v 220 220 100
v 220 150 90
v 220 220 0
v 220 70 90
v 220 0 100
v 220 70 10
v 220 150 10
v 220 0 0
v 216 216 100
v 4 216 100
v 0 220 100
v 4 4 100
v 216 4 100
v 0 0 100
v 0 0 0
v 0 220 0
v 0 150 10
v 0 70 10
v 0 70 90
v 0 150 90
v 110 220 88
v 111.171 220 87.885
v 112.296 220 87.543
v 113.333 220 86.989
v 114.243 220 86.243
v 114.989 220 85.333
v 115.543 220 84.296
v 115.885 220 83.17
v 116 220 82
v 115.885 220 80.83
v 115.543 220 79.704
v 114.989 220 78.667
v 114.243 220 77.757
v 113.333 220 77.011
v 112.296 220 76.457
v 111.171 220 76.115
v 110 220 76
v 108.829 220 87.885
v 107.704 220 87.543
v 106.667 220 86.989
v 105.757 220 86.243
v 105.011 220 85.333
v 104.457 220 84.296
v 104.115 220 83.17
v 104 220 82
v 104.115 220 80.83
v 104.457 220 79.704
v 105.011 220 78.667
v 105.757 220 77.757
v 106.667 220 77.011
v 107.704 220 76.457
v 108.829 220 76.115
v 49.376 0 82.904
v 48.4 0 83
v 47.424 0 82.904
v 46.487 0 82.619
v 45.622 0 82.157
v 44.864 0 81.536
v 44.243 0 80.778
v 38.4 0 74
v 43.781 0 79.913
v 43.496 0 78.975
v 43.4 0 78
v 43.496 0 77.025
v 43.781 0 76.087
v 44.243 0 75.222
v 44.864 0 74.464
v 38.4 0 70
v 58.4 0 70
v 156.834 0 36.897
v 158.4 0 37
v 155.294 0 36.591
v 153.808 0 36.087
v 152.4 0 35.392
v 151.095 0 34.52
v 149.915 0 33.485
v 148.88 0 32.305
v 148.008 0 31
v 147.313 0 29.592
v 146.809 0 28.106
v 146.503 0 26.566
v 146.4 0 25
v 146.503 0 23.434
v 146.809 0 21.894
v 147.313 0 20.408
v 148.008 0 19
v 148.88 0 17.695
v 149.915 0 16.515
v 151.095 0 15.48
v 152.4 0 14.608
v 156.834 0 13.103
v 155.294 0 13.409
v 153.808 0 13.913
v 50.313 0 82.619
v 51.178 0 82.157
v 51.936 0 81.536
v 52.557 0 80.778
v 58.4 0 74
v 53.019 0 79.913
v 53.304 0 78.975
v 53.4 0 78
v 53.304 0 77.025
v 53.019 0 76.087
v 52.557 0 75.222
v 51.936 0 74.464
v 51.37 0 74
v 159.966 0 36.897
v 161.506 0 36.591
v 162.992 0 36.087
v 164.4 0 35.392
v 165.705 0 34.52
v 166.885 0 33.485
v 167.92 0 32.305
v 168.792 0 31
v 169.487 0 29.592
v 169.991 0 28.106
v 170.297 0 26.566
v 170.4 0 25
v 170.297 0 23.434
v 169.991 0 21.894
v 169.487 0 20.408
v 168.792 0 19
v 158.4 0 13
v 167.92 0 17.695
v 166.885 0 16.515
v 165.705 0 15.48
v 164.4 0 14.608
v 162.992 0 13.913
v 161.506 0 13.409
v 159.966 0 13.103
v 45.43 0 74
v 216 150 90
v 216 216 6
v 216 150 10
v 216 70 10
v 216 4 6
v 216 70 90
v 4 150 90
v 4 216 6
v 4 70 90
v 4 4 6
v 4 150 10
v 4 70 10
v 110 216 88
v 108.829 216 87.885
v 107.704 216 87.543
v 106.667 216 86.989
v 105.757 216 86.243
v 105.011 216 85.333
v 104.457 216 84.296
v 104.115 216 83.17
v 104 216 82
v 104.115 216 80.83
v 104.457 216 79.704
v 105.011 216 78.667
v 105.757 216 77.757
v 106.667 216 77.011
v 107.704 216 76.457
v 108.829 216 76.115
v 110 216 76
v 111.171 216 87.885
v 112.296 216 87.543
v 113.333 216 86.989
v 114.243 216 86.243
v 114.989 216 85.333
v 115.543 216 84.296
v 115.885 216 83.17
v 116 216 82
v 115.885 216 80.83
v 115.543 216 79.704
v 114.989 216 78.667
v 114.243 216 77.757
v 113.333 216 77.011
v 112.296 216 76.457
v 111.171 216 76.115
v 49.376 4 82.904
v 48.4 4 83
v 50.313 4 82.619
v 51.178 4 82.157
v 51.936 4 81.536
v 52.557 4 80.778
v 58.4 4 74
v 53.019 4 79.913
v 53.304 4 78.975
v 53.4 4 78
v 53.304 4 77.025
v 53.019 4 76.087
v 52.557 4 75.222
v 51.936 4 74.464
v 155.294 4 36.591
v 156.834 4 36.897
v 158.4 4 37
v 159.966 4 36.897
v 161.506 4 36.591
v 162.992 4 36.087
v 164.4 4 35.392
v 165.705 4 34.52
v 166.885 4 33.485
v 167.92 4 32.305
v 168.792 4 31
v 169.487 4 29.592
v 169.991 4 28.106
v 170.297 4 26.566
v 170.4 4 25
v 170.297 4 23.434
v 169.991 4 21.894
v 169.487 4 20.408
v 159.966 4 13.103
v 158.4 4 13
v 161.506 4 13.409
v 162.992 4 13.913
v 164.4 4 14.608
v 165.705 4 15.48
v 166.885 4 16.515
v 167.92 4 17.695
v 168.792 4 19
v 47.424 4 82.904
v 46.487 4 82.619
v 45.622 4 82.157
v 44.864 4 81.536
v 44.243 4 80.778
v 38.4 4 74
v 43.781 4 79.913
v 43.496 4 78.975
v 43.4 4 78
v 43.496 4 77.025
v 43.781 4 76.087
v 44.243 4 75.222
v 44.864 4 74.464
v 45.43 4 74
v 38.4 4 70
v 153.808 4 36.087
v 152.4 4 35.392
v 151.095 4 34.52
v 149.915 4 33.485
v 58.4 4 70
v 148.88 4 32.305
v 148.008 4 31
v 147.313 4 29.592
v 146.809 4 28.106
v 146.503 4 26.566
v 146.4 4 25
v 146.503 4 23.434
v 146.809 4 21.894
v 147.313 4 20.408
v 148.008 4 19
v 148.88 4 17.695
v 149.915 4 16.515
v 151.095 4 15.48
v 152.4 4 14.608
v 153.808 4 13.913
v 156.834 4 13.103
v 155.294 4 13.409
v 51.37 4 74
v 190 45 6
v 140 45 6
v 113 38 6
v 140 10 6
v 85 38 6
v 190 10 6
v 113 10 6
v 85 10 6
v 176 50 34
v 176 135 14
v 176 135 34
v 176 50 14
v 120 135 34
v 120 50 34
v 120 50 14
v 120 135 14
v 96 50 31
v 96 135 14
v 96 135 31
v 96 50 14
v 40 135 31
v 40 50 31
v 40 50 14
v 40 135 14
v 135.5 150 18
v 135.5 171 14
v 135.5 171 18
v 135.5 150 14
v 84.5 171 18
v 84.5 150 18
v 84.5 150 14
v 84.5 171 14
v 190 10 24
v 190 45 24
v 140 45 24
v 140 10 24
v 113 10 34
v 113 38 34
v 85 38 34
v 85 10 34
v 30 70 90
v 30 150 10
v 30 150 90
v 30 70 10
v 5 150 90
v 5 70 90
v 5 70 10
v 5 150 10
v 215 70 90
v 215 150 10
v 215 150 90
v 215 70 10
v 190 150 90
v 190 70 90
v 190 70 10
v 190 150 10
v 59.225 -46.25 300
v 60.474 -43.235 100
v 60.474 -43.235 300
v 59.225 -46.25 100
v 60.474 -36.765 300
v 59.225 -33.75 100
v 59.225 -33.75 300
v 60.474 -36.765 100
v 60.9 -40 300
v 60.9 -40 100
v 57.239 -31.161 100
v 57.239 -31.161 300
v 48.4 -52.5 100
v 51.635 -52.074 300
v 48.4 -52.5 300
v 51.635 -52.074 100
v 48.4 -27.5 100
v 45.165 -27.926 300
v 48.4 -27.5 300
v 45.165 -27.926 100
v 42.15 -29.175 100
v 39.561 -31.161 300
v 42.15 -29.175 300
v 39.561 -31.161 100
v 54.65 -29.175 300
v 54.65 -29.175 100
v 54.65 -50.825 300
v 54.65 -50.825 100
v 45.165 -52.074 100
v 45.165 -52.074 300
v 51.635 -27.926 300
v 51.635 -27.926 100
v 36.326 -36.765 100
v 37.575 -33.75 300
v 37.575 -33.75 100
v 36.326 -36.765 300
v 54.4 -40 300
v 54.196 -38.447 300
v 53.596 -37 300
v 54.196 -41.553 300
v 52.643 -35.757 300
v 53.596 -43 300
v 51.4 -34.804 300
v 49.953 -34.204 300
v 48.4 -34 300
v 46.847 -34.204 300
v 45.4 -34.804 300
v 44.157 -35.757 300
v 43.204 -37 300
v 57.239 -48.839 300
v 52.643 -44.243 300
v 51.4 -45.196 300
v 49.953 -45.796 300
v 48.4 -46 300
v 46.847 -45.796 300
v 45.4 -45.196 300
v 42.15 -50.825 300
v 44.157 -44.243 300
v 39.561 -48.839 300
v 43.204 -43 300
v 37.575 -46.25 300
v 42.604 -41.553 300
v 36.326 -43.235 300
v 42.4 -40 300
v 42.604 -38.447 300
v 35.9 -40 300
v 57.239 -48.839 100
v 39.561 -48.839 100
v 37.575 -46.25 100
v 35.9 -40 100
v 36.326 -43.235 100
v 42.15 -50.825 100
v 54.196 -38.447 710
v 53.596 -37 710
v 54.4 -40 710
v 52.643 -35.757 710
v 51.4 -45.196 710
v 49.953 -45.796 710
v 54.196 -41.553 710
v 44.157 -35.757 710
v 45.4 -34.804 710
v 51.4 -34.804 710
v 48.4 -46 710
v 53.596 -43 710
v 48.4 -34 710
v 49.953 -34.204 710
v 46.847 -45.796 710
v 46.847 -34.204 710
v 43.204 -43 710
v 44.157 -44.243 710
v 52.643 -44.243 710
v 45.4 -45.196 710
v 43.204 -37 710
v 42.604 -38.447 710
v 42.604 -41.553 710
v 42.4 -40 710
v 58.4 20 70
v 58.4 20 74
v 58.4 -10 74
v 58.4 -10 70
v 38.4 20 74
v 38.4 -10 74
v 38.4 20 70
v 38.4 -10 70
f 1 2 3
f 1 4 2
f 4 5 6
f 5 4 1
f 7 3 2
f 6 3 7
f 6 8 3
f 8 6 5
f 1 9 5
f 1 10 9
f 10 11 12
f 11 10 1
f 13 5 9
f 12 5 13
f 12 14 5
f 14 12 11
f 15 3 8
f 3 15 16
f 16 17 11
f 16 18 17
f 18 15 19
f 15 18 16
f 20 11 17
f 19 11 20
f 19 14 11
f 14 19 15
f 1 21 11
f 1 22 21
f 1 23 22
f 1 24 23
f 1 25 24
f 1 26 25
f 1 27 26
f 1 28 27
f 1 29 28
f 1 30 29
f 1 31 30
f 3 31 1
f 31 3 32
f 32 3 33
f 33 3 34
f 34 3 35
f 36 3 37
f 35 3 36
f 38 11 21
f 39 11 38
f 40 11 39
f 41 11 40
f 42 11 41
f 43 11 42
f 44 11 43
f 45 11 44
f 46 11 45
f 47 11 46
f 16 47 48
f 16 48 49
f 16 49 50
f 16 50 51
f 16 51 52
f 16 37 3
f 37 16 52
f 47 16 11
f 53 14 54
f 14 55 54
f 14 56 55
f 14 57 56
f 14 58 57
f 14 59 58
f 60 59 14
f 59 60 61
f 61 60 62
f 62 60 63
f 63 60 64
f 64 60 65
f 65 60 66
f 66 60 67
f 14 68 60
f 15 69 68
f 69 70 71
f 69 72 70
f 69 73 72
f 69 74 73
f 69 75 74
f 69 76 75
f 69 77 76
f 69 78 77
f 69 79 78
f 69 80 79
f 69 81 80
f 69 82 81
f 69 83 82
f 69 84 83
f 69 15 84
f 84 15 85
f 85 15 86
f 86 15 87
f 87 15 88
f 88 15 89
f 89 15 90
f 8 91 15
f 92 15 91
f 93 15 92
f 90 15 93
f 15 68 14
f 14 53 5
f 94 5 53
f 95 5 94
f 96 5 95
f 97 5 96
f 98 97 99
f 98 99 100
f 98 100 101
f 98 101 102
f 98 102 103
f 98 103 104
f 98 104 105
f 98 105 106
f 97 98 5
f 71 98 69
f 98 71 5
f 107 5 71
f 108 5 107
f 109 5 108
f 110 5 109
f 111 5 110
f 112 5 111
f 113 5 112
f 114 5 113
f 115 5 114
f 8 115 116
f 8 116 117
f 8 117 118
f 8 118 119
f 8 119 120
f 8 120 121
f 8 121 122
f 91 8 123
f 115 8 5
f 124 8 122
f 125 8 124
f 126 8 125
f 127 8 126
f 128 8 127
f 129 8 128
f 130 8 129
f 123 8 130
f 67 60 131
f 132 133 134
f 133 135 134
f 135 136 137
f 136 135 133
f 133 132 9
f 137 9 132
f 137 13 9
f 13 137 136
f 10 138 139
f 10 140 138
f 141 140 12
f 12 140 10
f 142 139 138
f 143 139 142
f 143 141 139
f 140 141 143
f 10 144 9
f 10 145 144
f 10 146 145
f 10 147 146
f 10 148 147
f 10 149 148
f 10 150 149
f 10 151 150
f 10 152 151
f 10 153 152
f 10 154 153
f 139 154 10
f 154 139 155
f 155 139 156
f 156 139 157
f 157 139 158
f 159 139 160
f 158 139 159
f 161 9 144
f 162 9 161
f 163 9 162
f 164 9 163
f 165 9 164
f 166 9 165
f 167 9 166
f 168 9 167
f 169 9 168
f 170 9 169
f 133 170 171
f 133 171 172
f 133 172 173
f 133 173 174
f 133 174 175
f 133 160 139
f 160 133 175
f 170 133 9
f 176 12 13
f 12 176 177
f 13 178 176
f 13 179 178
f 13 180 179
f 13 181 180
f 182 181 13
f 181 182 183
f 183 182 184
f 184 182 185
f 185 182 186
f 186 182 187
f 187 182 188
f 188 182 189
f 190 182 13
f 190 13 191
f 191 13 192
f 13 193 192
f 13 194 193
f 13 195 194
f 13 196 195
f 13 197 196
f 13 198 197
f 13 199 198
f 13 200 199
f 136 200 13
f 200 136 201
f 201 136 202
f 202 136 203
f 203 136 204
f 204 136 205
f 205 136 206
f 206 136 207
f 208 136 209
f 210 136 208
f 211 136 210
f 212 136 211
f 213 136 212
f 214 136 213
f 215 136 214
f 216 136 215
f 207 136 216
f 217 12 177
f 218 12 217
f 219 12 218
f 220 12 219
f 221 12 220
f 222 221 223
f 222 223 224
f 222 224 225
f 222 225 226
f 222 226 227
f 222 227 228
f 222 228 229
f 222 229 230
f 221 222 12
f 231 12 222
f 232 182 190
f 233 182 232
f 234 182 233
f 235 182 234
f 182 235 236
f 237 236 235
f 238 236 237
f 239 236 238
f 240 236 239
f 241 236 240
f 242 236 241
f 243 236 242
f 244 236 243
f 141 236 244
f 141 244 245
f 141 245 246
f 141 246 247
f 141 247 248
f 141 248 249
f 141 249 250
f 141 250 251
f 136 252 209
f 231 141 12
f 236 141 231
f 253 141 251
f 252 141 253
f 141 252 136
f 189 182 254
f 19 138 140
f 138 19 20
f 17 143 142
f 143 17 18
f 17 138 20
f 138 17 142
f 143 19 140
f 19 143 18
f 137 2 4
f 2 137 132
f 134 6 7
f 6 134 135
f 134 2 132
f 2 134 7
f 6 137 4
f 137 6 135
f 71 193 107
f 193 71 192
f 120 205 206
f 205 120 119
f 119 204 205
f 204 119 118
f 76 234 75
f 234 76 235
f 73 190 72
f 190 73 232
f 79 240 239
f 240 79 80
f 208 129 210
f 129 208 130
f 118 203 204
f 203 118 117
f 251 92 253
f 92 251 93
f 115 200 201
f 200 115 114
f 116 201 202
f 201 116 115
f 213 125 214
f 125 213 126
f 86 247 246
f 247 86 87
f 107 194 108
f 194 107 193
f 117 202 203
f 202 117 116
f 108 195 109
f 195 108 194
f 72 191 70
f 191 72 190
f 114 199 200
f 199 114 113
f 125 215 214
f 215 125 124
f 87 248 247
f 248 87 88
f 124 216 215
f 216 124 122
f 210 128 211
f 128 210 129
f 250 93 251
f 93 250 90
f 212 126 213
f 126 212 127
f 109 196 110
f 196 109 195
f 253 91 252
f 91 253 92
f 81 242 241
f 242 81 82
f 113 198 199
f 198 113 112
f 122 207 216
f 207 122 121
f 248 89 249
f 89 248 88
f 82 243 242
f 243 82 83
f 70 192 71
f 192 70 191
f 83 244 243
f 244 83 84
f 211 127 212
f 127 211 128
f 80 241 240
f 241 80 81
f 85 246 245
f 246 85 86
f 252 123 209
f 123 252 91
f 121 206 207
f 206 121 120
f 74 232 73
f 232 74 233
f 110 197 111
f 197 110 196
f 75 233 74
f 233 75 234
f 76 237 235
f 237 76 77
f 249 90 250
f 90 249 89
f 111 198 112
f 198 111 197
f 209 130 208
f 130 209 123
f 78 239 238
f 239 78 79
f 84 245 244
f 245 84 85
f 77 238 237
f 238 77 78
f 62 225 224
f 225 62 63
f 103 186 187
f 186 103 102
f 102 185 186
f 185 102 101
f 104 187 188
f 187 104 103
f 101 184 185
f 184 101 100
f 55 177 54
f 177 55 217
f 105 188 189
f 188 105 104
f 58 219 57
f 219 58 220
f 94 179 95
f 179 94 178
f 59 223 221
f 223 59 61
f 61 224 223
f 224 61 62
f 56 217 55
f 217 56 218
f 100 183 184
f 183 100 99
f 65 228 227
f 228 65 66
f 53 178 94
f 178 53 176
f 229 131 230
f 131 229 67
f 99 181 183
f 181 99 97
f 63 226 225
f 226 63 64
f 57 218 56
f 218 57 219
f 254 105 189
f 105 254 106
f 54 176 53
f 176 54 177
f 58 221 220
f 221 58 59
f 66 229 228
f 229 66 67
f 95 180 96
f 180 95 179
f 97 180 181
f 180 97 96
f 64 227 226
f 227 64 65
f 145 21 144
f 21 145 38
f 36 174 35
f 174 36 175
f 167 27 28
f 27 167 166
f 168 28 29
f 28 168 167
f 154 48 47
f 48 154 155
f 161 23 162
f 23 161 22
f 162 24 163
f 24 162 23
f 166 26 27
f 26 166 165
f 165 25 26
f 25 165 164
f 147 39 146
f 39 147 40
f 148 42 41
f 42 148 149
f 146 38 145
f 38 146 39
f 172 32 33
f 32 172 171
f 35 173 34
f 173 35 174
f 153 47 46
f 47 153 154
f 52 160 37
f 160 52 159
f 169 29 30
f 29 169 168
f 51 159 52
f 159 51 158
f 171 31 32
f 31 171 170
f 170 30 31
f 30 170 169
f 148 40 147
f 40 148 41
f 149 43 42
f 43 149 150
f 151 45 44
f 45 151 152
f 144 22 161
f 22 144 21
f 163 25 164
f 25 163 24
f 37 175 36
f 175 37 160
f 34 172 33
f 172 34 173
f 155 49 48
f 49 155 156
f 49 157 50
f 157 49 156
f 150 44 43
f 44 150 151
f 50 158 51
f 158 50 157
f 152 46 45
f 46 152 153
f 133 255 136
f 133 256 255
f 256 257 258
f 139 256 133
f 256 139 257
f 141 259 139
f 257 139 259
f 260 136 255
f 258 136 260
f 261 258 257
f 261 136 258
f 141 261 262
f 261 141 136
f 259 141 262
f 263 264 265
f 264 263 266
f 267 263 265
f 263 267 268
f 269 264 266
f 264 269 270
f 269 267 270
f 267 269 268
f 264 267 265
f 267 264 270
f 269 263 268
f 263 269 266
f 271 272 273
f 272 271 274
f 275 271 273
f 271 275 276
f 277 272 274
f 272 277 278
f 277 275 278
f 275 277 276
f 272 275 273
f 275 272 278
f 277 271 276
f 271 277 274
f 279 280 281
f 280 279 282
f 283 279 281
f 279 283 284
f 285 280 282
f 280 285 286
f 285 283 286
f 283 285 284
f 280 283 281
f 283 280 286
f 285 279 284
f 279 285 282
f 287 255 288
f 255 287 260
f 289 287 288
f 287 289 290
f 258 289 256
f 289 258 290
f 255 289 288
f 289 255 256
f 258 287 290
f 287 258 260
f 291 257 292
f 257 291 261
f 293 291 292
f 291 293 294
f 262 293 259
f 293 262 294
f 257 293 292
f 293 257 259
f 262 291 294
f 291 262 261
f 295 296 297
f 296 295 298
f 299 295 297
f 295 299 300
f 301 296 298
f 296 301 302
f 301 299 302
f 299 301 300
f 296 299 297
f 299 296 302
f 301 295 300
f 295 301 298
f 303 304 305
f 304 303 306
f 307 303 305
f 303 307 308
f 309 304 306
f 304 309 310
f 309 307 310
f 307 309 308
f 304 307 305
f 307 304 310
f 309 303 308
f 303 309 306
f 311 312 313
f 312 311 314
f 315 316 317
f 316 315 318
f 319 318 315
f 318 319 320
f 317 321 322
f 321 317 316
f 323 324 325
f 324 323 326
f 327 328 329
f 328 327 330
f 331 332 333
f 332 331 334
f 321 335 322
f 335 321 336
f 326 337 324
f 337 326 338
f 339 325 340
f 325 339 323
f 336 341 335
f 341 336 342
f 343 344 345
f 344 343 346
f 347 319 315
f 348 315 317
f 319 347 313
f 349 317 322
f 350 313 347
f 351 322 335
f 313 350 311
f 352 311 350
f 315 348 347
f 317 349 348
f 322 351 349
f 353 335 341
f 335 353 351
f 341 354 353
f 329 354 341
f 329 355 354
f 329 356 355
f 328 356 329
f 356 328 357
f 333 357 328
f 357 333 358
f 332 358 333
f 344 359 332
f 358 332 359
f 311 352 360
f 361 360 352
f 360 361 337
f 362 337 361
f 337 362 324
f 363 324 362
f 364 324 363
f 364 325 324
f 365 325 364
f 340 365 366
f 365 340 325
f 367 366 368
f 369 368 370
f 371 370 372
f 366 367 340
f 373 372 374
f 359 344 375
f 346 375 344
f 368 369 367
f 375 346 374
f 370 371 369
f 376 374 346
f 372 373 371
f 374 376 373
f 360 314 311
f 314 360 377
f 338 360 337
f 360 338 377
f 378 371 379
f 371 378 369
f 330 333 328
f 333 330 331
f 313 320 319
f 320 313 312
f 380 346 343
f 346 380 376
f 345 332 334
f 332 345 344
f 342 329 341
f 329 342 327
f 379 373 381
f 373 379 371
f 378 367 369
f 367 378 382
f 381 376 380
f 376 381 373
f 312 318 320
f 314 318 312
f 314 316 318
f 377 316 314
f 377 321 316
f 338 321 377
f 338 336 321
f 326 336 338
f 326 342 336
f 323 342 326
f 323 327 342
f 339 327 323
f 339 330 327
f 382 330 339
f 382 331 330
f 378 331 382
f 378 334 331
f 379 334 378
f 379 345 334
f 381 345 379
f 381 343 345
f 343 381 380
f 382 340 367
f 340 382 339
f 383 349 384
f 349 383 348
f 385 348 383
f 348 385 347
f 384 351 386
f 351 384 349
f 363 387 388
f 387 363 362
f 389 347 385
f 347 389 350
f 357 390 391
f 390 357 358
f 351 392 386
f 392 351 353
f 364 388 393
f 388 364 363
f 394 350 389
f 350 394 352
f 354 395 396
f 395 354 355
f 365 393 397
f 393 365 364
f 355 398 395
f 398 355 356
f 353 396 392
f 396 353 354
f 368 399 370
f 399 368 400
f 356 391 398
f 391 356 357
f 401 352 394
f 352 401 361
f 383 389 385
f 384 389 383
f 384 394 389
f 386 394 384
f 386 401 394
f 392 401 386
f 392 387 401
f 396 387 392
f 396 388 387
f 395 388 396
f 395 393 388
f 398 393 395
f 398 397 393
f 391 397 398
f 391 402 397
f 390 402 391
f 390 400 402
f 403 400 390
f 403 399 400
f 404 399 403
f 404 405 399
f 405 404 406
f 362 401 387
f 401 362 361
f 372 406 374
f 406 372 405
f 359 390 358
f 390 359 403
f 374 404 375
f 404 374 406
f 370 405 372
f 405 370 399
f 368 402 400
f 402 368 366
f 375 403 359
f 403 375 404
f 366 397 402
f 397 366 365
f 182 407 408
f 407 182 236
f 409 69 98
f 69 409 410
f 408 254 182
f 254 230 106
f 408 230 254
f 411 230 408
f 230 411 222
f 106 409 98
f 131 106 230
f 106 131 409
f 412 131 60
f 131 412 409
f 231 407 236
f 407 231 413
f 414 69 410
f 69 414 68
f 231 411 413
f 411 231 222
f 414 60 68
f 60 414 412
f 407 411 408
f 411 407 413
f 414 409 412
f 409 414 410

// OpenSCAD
// =============================================================================
// River Vector — Voyager Electronics Enclosure Mock-up
// =============================================================================
//
// This is a layout sanity-check, NOT a production design. It verifies that
// two Pis + Pico + buck regulators + relay + dual fans fit comfortably in a
// 220 × 220 × 100 mm IP66 enclosure with airflow paths and connector
// penetrations.
//
// Usage:
//   1. Install OpenSCAD (free — openscad.org).
//   2. Open this file. Press F5 to preview, F6 to render.
//   3. To use in TinkerCAD: File → Export → STL → import to TinkerCAD.
//
// All dimensions in millimeters. Origin (0,0,0) is the bottom-front-left
// inside corner of the enclosure exterior. +X = right, +Y = back, +Z = up.
// =============================================================================

// ---- Parameters (tweak these and re-render) ---------------------------------

// Enclosure (Hammond 1554Q is 220×220×90 — using 100 for headroom)
BOX_W = 220;
BOX_D = 220;
BOX_H = 100;
WALL  = 4;

// Internal aluminum mounting plate
PLATE_T = 2;
PLATE_Z = WALL;        // sits on bottom wall

// Standoff height (rubber vibration mount + spacer)
STANDOFF = 8;

// Raspberry Pi 5 — 85 × 56 × 17 (header + cooler bumps it to ~20)
PI5_W = 85;  PI5_D = 56;  PI5_H = 20;

// Raspberry Pi 4 — 85 × 56 × 17
PI4_W = 85;  PI4_D = 56;  PI4_H = 17;

// RP2040 Pico — 51 × 21 × 4
PICO_W = 51; PICO_D = 21; PICO_H = 4;

// 80mm Noctua-style fan
FAN_SIZE = 80;
FAN_T    = 25;

// Buck converter board (12V → 5V/5A typical)
BUCK_W = 50; BUCK_D = 35; BUCK_H = 18;

// Bosch/Tyco 40A automotive relay (cube style)
RELAY_W = 28; RELAY_D = 28; RELAY_H = 28;

// Bulgin Buccaneer 400-series panel mount (thread ~22mm)
PLUG_D = 24;

// RP-SMA bulkhead for external antenna (separate penetration — see notes)
ANTENNA_D = 10;
// External antenna whip (L-com HG2458RD-09NF — 16" tall, 1" mast)
ANTENNA_WHIP_H = 410;
ANTENNA_MAST_H = 200;
ANTENNA_MAST_D = 25;

// Goretex pressure-equalization vent
VENT_D = 12;

// ---- Enclosure (hollow shell with cutouts) ----------------------------------

module enclosure() {
    color("lightgray", 0.25)
    difference() {
        cube([BOX_W, BOX_D, BOX_H]);

        // Interior void
        translate([WALL, WALL, WALL])
            cube([BOX_W - 2*WALL, BOX_D - 2*WALL, BOX_H - WALL + 0.1]);

        // Intake fan cutout — LEFT wall, vertically centered
        translate([-0.1, BOX_D/2 - FAN_SIZE/2, BOX_H/2 - FAN_SIZE/2])
            cube([WALL + 0.2, FAN_SIZE, FAN_SIZE]);

        // Exhaust fan cutout — RIGHT wall, vertically centered
        translate([BOX_W - WALL - 0.1, BOX_D/2 - FAN_SIZE/2, BOX_H/2 - FAN_SIZE/2])
            cube([WALL + 0.2, FAN_SIZE, FAN_SIZE]);

        // Cannon plug penetration — FRONT wall, lower-right
        translate([BOX_W * 0.72, -0.1, 25])
            rotate([-90, 0, 0])
            cylinder(d=PLUG_D, h=WALL + 0.2, $fn=48);

        // WiFi antenna pigtail — FRONT wall, upper-left
        translate([BOX_W * 0.22, -0.1, BOX_H - 22])
            rotate([-90, 0, 0])
            cylinder(d=ANTENNA_D, h=WALL + 0.2, $fn=32);

        // Goretex vent — BACK wall, top-center
        translate([BOX_W/2, BOX_D + 0.1, BOX_H - 18])
            rotate([90, 0, 0])
            cylinder(d=VENT_D, h=WALL + 0.2, $fn=32);
    }
}

// ---- Internal mounting plate ------------------------------------------------

module mounting_plate() {
    color("tan", 0.7)
    translate([WALL, WALL, PLATE_Z])
        cube([BOX_W - 2*WALL, BOX_D - 2*WALL, PLATE_T]);
}

// ---- Components -------------------------------------------------------------

// Pi 4 — LEFT of center, gets cool intake air FIRST.
// Oriented with the 85mm long axis running front-to-back (Y),
// 56mm across the airflow (X). This keeps a clear airflow lane
// against each side wall for the fans.
module pi4() {
    color("darkgreen")
    translate([40, 50, PLATE_Z + PLATE_T + STANDOFF])
        cube([PI4_D, PI4_W, PI4_H]);   // 56 wide × 85 deep × 17 tall
}

// Pi 5 — RIGHT of center, downstream in airflow (gets warm air, vents to exhaust).
module pi5() {
    color("green")
    translate([120, 50, PLATE_Z + PLATE_T + STANDOFF])
        cube([PI5_D, PI5_W, PI5_H]);   // 56 wide × 85 deep × 20 tall
}

// Pico — small board, back-center between the two Pis
module pico() {
    color("royalblue")
    translate([BOX_W/2 - PICO_W/2, 150, PLATE_Z + PLATE_T + STANDOFF])
        cube([PICO_W, PICO_D, PICO_H]);
}

// Buck regulator — front strip, under the cannon plug entry
module buck() {
    color("red")
    translate([140, WALL + 6, PLATE_Z + PLATE_T])
        cube([BUCK_W, BUCK_D, BUCK_H]);
}

// Master relay — front strip, left of buck
module relay() {
    color("orange")
    translate([85, WALL + 6, PLATE_Z + PLATE_T])
        cube([RELAY_W, RELAY_D, RELAY_H]);
}

// Fans
module intake_fan() {
    color("dimgray", 0.85)
    translate([WALL + 1, BOX_D/2 - FAN_SIZE/2, BOX_H/2 - FAN_SIZE/2])
        cube([FAN_T, FAN_SIZE, FAN_SIZE]);
}

module exhaust_fan() {
    color("dimgray", 0.85)
    translate([BOX_W - WALL - FAN_T - 1, BOX_D/2 - FAN_SIZE/2, BOX_H/2 - FAN_SIZE/2])
        cube([FAN_T, FAN_SIZE, FAN_SIZE]);
}

// ---- External antenna assembly ---------------------------------------------

module antenna_mast() {
    // Mast tube (1" OD, alongside the enclosure's front-left corner)
    color("silver", 0.8)
    translate([BOX_W * 0.22, -40, BOX_H])
        cylinder(d=ANTENNA_MAST_D, h=ANTENNA_MAST_H, $fn=24);
}

module antenna_whip() {
    // The actual radiating element on top of the mast
    color("black")
    translate([BOX_W * 0.22, -40, BOX_H + ANTENNA_MAST_H])
        cylinder(d=12, h=ANTENNA_WHIP_H, $fn=24);
}

module antenna_bracket() {
    // L-bracket attaching the mast to the enclosure / cowl
    color("dimgray")
    translate([BOX_W * 0.22 - 10, -10, BOX_H - 30])
        cube([20, 30, 4]);
}

// ---- Assemble ---------------------------------------------------------------

enclosure();
mounting_plate();
pi5();
pi4();
pico();
buck();
relay();
intake_fan();
exhaust_fan();
antenna_mast();
antenna_whip();
antenna_bracket();
